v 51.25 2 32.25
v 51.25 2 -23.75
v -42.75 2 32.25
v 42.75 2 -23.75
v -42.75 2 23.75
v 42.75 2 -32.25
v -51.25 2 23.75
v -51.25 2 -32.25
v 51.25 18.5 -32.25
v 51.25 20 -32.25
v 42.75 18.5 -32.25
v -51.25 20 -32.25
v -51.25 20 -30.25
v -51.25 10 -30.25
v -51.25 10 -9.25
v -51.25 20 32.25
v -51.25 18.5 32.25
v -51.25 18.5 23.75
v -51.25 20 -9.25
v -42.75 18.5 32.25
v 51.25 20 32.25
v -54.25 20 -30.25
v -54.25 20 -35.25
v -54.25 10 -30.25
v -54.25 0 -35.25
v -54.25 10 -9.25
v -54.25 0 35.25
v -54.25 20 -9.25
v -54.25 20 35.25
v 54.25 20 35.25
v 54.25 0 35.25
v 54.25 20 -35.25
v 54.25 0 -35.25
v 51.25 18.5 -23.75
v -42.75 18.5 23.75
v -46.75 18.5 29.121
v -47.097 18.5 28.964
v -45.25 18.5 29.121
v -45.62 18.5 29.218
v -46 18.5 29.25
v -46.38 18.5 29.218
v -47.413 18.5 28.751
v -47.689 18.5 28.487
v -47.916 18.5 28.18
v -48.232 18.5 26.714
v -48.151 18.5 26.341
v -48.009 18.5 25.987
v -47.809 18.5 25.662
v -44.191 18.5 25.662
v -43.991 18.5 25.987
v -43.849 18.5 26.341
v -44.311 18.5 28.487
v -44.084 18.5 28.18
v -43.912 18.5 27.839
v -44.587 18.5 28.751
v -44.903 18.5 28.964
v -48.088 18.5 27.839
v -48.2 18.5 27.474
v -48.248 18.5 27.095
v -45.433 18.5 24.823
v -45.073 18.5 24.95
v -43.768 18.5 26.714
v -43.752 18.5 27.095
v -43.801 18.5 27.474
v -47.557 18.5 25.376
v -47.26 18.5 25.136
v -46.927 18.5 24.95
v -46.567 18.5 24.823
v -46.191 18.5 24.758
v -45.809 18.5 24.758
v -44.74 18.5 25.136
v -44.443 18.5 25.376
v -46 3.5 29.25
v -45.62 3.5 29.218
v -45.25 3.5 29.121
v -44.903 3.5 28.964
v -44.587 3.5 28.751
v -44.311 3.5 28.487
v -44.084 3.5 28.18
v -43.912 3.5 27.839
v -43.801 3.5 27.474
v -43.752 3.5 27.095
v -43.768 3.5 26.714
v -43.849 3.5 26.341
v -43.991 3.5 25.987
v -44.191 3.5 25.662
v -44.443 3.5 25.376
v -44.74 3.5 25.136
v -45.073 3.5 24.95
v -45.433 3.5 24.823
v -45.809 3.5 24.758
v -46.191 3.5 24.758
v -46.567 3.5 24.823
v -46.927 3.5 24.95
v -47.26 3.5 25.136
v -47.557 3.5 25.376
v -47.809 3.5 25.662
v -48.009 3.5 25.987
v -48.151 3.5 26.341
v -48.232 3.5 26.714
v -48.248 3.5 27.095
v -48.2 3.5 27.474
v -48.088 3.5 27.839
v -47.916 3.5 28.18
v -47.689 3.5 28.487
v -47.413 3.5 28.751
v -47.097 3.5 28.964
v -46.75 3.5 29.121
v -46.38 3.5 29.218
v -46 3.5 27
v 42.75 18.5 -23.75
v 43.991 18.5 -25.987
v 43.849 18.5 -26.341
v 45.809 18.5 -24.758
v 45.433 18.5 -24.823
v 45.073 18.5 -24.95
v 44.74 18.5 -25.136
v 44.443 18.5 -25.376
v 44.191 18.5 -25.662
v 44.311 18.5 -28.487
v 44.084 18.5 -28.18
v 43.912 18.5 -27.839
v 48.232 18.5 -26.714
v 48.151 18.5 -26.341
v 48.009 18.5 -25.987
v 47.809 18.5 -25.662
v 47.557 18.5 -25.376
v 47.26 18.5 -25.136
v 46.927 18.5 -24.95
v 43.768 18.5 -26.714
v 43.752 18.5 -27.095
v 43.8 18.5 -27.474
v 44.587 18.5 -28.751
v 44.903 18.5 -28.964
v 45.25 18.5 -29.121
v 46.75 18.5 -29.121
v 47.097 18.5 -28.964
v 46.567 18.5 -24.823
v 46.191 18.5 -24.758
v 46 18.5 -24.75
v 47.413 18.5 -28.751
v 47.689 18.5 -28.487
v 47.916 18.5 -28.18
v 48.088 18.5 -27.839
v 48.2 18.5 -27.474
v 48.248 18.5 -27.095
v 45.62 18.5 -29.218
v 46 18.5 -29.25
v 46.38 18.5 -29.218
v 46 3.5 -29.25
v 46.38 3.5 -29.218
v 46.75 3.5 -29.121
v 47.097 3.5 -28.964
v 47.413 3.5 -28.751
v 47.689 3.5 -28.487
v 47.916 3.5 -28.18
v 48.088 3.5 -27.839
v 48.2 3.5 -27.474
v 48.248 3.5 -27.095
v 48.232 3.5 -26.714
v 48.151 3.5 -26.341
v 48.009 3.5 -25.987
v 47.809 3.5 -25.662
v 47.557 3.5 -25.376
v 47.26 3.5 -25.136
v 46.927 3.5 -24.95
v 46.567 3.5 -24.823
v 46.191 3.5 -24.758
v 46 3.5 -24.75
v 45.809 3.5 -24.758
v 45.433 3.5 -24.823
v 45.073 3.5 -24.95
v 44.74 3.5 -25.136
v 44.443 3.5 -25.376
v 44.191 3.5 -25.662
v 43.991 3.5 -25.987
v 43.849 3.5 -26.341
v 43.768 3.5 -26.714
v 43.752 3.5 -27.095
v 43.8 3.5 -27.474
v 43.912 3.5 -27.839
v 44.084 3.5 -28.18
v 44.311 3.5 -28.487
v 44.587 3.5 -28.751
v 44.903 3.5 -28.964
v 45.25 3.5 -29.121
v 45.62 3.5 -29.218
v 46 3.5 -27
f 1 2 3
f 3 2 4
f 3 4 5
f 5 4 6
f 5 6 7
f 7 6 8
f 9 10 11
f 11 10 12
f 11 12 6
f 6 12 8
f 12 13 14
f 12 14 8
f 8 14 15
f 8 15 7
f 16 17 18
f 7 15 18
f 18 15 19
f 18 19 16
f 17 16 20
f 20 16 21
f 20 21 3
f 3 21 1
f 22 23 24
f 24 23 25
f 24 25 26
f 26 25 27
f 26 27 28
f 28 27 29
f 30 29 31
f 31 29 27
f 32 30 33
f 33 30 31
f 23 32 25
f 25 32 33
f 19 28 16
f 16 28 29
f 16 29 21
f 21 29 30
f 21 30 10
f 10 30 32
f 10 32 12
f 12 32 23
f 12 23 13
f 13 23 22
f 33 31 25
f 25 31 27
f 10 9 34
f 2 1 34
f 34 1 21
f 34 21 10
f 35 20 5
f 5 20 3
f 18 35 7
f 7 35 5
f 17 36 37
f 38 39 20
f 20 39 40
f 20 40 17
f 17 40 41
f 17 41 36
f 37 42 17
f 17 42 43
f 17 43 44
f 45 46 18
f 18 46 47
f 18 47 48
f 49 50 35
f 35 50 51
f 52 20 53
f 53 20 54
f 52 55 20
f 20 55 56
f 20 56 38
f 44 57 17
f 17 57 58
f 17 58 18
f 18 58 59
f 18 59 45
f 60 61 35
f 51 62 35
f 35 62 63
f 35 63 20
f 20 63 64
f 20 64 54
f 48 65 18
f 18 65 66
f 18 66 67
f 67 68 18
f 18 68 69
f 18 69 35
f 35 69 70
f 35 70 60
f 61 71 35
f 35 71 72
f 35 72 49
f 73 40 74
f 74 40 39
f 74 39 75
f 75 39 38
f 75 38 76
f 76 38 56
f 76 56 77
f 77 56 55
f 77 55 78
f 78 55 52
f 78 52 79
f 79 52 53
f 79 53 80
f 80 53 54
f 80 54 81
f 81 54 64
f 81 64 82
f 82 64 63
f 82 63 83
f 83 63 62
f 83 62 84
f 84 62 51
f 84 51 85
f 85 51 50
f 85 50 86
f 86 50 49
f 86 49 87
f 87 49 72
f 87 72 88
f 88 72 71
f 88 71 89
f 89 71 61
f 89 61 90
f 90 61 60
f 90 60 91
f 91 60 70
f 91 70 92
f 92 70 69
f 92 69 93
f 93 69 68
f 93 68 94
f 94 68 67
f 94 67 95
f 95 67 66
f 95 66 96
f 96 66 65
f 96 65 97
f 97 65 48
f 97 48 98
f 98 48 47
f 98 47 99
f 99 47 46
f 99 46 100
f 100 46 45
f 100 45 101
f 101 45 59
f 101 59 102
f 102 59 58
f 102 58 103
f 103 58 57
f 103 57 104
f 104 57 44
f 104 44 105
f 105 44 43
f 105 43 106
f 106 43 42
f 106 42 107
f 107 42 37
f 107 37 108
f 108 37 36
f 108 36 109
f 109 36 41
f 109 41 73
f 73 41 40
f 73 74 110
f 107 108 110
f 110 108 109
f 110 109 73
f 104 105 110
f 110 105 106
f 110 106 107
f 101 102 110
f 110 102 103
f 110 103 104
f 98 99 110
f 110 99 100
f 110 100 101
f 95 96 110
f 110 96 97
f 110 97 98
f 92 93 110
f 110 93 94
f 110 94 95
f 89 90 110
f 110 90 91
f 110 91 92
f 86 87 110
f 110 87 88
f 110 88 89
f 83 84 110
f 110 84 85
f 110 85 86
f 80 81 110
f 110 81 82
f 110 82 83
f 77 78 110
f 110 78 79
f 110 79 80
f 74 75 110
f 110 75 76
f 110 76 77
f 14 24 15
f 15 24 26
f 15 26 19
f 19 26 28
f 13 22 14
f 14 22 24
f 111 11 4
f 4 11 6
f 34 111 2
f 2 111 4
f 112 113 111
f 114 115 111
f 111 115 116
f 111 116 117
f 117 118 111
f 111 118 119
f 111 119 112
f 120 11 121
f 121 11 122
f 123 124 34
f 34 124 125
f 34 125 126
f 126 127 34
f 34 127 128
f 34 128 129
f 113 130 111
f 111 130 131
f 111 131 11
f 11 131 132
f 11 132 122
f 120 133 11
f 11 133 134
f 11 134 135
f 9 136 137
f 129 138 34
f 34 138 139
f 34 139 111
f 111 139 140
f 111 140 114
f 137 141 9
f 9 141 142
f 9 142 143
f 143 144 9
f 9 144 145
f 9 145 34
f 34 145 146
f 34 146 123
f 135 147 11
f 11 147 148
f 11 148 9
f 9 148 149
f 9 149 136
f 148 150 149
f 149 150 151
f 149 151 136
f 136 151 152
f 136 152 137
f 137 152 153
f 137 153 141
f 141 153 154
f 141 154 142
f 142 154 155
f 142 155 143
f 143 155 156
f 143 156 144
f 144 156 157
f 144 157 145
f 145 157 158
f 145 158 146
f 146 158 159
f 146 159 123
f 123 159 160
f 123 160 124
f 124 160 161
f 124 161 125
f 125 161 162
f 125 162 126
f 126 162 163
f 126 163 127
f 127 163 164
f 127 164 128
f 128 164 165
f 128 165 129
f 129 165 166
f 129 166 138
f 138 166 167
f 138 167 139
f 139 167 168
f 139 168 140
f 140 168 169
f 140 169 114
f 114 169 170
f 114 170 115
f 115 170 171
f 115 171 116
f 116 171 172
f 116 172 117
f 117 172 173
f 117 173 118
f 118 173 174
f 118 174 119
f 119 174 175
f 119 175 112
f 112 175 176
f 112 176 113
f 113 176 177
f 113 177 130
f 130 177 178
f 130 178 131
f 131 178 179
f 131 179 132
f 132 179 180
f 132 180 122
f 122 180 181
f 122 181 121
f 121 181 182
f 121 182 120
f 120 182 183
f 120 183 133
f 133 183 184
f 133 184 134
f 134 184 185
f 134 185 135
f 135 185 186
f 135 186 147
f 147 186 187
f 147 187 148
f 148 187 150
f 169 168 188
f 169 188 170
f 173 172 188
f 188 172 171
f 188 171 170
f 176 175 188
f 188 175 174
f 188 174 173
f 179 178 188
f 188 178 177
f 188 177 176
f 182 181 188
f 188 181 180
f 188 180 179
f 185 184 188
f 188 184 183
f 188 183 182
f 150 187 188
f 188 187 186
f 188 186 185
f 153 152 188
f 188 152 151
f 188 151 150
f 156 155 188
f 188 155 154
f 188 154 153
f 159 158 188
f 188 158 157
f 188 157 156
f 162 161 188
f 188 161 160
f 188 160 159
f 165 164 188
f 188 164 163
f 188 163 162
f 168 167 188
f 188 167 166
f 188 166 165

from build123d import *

# Parameters (mm, degrees)
SKETCH1_W               = 108.5
SKETCH1_H               = 70.5
BOSS_EXTRUDE1_DEPTH     = 20
SKETCH2_W               = 102.5
SKETCH2_H               = 64.5
CUT_EXTRUDE1_DEPTH      = 18
SKETCH3_W               = 8.5
SKETCH3_H               = 8.5
BOSS_EXTRUDE2_DEPTH     = 16.5
SKETCH4_R               = 2.25
CUT_EXTRUDE2_DEPTH      = 15
SKETCH7_W               = 21
SKETCH7_H               = 10
CUT_EXTRUDE5_DEPTH      = 8
SKETCH8_W               = 8.5
SKETCH8_H               = 8.5
BOSS_EXTRUDE3_DEPTH     = 16.5
CUT_EXTRUDE6_DEPTH      = 13
CUT_EXTRUDE6_DEPTH_BACK = 15
SKETCH9_R               = 2.25


with BuildPart() as part:
    # Sketch1 → Boss-Extrude1 (new body)
    with BuildSketch(Plane(origin=(0, 0, 0), x_dir=(1, 0, 0), z_dir=(0, 1, 0))):
        Rectangle(SKETCH1_W, SKETCH1_H)
    extrude(amount=BOSS_EXTRUDE1_DEPTH)

    # Sketch2 → Cut-Extrude1 (cut)
    with BuildSketch(Plane(origin=(0, 20, 0), x_dir=(1, 0, 0), z_dir=(0, 1, 0))):
        Rectangle(SKETCH2_W, SKETCH2_H)
    extrude(amount=-CUT_EXTRUDE1_DEPTH, mode=Mode.SUBTRACT)

    # Sketch3 → Boss-Extrude2 (add)
    with BuildSketch(Plane(origin=(0, 2, 0), x_dir=(1, 0, 0), z_dir=(0, 1, 0))):
        with Locations((-47, -28)):
            Rectangle(SKETCH3_W, SKETCH3_H)
    extrude(amount=BOSS_EXTRUDE2_DEPTH)

    # Sketch4 → Cut-Extrude2 (cut)
    with BuildSketch(Plane(origin=(0, 18.5, 0), x_dir=(1, 0, 0), z_dir=(0, 1, 0))):
        with Locations(Location((-46, -27, 0), (0, 0, 270))):
            Circle(SKETCH4_R)
    extrude(amount=-CUT_EXTRUDE2_DEPTH, mode=Mode.SUBTRACT)

    # Sketch7 → Cut-Extrude5 (cut)
    with BuildSketch(Plane(origin=(-51.25, 0, 0), x_dir=(0, 0, -1), z_dir=(1, 0, 0))):
        with Locations((19.75, 15)):
            Rectangle(SKETCH7_W, SKETCH7_H)
    extrude(amount=-CUT_EXTRUDE5_DEPTH, mode=Mode.SUBTRACT)

    # Sketch8 → Boss-Extrude3 (add)
    with BuildSketch(Plane(origin=(0, 2, 0), x_dir=(1, 0, 0), z_dir=(0, 1, 0))):
        with Locations((47, 28)):
            Rectangle(SKETCH8_W, SKETCH8_H)
    extrude(amount=BOSS_EXTRUDE3_DEPTH)

    # Sketch9 → Cut-Extrude6 (cut, two sides: drawn at the far end of the back side and taken through both)
    with BuildSketch(Plane(origin=(0, 18.5, 0), x_dir=(1, 0, 0), z_dir=(0, 1, 0)).offset(-CUT_EXTRUDE6_DEPTH_BACK)):
        with Locations(Location((46, 27, 0), (0, 0, 90))):
            Circle(SKETCH9_R)
    extrude(amount=CUT_EXTRUDE6_DEPTH + CUT_EXTRUDE6_DEPTH_BACK, mode=Mode.SUBTRACT)


solid = part.part
